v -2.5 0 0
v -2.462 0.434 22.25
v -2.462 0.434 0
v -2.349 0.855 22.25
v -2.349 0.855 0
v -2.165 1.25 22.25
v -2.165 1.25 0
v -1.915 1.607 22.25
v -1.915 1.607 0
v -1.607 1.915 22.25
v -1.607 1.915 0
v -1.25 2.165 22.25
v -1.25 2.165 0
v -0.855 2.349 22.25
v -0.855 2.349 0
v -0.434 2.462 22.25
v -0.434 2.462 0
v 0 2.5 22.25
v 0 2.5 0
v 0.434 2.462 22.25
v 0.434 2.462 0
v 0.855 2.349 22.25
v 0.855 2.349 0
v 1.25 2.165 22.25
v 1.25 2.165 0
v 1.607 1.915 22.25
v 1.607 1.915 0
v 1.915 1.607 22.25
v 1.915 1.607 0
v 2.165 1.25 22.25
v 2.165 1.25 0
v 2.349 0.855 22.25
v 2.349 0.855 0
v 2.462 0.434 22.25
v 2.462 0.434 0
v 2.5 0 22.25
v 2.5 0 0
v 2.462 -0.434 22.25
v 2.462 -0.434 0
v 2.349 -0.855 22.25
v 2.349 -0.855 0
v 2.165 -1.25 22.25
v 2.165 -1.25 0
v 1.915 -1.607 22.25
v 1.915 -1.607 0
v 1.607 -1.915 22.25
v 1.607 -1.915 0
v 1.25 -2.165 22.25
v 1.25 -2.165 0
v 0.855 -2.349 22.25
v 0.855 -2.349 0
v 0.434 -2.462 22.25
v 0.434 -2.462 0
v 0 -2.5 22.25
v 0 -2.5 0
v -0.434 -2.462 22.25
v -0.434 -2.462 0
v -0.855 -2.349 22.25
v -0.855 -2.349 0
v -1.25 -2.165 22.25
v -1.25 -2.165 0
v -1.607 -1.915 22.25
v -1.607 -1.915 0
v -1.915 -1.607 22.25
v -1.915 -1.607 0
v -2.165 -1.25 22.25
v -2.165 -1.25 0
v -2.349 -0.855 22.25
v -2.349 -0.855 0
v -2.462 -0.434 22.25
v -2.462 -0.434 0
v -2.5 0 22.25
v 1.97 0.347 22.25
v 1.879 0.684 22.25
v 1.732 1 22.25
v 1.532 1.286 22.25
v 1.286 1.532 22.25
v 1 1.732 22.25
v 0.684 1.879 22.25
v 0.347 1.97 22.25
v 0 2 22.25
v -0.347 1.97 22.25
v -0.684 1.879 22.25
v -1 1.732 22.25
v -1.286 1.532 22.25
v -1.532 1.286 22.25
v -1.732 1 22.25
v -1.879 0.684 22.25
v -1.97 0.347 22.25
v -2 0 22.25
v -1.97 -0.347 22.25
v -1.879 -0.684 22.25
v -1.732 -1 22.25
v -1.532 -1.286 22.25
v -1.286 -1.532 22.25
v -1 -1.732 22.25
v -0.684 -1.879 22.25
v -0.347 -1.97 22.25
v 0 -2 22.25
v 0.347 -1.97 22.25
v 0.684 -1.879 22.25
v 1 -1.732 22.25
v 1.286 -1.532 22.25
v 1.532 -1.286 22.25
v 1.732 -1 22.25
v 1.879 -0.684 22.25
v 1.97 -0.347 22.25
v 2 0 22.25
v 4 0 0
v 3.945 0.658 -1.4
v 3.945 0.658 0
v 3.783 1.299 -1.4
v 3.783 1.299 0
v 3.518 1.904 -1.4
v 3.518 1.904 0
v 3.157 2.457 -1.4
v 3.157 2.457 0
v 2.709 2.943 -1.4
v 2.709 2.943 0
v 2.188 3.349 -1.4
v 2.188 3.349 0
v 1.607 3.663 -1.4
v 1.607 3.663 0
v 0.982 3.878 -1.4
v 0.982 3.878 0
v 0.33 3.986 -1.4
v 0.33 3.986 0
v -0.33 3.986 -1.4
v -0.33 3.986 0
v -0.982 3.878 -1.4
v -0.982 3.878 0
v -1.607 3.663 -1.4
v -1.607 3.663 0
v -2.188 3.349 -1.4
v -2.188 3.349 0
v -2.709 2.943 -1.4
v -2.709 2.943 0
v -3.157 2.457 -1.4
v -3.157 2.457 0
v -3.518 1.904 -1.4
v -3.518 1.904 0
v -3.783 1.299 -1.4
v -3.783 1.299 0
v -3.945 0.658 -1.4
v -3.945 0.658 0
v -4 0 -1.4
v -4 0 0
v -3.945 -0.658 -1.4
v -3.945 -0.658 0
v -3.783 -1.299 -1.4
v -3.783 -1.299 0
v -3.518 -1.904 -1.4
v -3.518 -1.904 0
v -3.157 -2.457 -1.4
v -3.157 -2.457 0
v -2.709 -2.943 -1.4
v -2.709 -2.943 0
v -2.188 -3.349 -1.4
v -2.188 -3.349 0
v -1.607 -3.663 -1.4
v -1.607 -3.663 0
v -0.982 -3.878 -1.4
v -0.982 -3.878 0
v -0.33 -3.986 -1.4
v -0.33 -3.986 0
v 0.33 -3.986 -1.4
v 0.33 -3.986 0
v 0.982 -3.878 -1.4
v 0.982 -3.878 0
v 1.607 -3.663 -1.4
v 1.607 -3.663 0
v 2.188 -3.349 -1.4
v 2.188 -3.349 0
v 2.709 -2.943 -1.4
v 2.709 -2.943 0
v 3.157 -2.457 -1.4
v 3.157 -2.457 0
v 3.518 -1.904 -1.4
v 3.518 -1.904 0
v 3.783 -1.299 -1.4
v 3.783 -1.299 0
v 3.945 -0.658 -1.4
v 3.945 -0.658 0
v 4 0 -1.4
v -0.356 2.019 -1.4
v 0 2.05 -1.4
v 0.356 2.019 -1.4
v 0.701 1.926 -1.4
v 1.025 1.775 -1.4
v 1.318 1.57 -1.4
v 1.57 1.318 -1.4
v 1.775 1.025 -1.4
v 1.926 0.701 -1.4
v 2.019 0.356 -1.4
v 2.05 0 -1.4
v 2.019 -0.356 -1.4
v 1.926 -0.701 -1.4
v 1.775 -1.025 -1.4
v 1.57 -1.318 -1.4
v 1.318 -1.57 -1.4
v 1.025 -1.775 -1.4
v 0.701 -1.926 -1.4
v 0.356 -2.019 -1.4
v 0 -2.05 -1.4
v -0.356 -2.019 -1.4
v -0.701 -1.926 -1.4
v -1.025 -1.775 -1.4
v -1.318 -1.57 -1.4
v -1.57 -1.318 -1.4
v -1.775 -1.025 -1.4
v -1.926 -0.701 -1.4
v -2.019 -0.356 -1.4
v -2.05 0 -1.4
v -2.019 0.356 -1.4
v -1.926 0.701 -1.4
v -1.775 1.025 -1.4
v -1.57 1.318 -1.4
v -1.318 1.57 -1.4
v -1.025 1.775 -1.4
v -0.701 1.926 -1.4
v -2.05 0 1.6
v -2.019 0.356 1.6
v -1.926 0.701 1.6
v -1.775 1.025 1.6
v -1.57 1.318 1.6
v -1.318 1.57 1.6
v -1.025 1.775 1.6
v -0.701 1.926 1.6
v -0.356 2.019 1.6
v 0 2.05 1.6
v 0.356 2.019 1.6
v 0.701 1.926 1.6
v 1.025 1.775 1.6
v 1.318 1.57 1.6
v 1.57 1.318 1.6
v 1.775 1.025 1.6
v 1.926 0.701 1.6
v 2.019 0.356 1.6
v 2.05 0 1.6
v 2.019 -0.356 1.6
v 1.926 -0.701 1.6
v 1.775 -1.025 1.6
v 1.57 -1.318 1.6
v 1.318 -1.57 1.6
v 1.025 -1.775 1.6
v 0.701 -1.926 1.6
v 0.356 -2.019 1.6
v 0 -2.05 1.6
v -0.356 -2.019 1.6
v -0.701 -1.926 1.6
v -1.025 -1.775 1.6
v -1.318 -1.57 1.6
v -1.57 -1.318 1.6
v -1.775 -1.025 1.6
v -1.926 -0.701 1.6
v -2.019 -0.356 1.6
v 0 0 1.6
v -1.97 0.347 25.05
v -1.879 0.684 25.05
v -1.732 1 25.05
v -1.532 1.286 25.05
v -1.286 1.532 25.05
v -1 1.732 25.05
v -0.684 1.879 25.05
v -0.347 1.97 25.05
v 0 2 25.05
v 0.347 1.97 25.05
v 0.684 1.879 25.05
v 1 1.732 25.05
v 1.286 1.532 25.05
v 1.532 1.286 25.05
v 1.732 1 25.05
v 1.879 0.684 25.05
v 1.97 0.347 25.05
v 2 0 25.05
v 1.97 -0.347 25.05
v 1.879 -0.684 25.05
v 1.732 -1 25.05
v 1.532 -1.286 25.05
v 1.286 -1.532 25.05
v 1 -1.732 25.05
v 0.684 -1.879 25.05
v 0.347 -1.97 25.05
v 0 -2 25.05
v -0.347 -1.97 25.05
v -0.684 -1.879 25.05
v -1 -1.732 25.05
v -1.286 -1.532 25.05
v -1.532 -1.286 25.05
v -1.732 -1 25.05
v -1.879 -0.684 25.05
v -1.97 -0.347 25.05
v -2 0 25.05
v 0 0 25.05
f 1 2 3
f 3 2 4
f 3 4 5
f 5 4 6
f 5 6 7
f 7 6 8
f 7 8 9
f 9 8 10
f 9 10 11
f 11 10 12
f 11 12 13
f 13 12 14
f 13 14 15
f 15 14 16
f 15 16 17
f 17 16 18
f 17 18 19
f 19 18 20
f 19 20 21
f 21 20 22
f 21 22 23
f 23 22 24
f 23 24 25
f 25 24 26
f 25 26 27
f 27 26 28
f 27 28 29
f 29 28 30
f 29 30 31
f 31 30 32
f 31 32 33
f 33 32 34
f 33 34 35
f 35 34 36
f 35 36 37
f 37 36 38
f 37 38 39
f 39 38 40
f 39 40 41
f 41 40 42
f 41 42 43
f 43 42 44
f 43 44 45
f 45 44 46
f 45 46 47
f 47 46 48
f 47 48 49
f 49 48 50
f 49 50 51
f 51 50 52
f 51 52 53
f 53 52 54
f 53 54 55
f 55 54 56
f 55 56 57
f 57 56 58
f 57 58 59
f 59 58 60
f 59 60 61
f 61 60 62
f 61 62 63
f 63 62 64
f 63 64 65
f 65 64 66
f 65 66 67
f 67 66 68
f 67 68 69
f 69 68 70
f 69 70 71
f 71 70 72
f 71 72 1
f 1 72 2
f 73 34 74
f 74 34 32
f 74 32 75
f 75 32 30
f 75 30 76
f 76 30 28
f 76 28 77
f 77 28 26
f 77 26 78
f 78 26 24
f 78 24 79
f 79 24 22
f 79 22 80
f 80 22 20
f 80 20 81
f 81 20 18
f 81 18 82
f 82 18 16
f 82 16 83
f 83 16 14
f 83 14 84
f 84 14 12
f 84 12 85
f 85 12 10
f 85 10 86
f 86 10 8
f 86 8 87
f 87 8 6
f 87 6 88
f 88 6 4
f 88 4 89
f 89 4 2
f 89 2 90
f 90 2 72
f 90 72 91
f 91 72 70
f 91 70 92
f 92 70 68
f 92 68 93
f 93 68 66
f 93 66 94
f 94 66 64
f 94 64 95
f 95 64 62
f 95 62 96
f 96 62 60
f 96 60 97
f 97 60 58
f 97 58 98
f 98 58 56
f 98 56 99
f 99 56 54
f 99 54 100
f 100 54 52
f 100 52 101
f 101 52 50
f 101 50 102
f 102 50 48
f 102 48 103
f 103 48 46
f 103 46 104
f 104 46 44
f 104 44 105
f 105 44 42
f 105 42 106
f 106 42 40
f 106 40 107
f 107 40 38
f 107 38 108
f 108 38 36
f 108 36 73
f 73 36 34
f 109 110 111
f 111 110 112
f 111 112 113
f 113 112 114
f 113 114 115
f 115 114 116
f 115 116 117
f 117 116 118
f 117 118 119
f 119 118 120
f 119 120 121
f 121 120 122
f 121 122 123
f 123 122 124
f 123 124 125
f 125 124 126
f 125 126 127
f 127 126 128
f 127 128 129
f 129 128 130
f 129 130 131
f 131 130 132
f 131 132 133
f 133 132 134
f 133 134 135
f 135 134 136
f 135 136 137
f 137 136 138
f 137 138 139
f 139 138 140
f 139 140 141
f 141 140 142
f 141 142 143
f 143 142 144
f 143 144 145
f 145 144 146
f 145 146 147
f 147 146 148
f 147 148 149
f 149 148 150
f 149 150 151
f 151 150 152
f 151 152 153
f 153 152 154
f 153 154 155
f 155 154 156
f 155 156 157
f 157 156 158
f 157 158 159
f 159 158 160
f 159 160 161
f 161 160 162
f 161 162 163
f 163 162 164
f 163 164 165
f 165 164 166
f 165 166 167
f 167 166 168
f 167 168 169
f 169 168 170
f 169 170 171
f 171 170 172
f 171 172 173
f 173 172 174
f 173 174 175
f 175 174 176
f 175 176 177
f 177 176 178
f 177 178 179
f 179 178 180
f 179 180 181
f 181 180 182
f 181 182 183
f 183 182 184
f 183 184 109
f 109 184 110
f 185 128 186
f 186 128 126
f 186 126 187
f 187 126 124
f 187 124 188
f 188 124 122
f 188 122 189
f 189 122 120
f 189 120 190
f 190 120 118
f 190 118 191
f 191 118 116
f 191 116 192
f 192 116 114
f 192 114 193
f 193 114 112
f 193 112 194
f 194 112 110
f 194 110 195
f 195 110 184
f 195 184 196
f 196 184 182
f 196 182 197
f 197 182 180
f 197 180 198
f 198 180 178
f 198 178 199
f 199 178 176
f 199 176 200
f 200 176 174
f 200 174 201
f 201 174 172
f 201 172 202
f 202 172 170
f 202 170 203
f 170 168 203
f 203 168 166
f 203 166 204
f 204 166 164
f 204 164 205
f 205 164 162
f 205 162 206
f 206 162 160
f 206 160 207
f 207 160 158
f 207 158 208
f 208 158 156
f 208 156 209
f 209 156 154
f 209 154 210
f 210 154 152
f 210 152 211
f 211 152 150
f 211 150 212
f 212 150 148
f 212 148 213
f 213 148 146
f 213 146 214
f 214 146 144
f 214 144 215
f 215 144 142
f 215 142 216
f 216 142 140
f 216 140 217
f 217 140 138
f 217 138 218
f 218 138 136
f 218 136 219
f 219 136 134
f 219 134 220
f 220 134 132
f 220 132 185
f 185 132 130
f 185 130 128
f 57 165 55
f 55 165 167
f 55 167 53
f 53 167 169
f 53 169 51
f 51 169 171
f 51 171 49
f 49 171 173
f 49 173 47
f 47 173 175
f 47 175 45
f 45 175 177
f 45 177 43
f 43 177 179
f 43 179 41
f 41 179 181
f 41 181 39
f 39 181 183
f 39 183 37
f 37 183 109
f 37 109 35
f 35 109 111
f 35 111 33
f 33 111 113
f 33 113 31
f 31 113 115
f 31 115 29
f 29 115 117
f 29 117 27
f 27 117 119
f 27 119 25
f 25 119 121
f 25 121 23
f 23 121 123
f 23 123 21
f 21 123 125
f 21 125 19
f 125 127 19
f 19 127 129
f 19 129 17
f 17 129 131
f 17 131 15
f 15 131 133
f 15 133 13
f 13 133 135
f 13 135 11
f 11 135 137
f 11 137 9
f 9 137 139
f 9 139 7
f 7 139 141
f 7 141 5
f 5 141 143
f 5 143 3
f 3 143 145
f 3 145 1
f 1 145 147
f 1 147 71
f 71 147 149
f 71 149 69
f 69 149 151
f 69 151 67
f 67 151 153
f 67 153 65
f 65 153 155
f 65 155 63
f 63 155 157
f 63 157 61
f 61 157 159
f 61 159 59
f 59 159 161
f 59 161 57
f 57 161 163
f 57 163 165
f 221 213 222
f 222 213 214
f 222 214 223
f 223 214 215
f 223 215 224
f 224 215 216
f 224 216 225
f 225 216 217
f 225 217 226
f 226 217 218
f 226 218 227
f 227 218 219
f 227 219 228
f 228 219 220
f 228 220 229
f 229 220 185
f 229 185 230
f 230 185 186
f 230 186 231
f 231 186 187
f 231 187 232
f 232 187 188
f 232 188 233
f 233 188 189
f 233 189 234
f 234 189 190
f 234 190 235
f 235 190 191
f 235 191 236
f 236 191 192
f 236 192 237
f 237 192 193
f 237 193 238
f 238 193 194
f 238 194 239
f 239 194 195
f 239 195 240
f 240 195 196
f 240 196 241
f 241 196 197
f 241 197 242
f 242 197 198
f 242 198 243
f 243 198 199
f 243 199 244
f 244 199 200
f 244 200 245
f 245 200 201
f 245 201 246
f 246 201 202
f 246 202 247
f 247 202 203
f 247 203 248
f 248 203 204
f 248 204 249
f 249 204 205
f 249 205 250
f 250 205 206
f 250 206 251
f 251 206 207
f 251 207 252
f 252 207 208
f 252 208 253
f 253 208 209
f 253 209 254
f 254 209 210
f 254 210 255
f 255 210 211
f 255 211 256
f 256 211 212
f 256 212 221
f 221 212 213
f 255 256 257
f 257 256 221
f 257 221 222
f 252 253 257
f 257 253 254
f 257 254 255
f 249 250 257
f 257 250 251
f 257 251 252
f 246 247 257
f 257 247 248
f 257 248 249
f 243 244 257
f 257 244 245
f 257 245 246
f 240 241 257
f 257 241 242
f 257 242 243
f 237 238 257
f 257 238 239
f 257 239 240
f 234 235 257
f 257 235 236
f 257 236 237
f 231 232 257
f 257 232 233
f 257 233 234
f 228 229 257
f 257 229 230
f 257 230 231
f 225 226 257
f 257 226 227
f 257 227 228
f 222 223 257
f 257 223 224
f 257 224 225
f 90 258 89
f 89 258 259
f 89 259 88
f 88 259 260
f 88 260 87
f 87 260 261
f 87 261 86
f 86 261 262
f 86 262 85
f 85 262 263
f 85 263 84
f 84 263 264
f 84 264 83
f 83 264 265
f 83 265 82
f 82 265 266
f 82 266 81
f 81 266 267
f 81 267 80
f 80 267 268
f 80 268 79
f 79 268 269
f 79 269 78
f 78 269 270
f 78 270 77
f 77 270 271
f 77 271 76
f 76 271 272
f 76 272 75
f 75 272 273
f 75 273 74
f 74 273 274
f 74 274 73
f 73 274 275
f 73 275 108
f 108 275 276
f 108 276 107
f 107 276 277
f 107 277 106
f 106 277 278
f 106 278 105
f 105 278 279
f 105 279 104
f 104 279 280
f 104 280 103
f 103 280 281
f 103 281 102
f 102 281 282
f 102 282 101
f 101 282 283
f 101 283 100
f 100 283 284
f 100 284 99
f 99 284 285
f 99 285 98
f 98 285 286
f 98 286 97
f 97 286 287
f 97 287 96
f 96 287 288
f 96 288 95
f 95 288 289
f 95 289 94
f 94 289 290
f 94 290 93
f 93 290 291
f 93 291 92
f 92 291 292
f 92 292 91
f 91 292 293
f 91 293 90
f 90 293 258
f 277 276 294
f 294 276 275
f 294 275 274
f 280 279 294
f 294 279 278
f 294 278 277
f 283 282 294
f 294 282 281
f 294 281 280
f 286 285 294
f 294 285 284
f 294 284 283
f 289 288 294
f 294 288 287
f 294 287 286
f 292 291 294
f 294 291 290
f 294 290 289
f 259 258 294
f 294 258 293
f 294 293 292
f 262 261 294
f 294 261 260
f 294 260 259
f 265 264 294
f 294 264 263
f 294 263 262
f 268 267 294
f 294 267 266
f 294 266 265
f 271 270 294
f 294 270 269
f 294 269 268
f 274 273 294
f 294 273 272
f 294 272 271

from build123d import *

# Parameters (mm, degrees)
SKETCH1_R           = 2.5
BOSS_EXTRUDE1_DEPTH = 22.25
SKETCH2_R           = 4
BOSS_EXTRUDE2_DEPTH = 1.4
SKETCH3_R           = 2.05
CUT_EXTRUDE1_DEPTH  = 3
SKETCH4_R           = 2
BOSS_EXTRUDE3_DEPTH = 2.8


with BuildPart() as part:
    # Sketch1 → Boss-Extrude1 (new body)
    with BuildSketch(Plane(origin=(0, 0, 0), x_dir=(0, 1, 0), z_dir=(0, 0, 1))):
        with Locations(Location((0, 0, 0), (0, 0, 270))):
            Circle(SKETCH1_R)
    extrude(amount=BOSS_EXTRUDE1_DEPTH)

    # Sketch2 → Boss-Extrude2 (add)
    with BuildSketch(Plane(origin=(0, 0, 0), x_dir=(1, 0, 0), z_dir=(0, 0, -1))):
        with Locations(Location((0, 0, 0), (0, 0, 180))):
            Circle(SKETCH2_R)
    extrude(amount=BOSS_EXTRUDE2_DEPTH)

    # Sketch3 → Cut-Extrude1 (cut)
    with BuildSketch(Plane(origin=(0, 0, -1.4), x_dir=(1, 0, 0), z_dir=(0, 0, -1))):
        with Locations(Location((0, 0, 0), (0, 0, 180))):
            Circle(SKETCH3_R)
    extrude(amount=-CUT_EXTRUDE1_DEPTH, mode=Mode.SUBTRACT)

    # Sketch4 → Boss-Extrude3 (add)
    with BuildSketch(Plane.XY.offset(22.25)):
        Circle(SKETCH4_R)
    extrude(amount=BOSS_EXTRUDE3_DEPTH)


solid = part.part
